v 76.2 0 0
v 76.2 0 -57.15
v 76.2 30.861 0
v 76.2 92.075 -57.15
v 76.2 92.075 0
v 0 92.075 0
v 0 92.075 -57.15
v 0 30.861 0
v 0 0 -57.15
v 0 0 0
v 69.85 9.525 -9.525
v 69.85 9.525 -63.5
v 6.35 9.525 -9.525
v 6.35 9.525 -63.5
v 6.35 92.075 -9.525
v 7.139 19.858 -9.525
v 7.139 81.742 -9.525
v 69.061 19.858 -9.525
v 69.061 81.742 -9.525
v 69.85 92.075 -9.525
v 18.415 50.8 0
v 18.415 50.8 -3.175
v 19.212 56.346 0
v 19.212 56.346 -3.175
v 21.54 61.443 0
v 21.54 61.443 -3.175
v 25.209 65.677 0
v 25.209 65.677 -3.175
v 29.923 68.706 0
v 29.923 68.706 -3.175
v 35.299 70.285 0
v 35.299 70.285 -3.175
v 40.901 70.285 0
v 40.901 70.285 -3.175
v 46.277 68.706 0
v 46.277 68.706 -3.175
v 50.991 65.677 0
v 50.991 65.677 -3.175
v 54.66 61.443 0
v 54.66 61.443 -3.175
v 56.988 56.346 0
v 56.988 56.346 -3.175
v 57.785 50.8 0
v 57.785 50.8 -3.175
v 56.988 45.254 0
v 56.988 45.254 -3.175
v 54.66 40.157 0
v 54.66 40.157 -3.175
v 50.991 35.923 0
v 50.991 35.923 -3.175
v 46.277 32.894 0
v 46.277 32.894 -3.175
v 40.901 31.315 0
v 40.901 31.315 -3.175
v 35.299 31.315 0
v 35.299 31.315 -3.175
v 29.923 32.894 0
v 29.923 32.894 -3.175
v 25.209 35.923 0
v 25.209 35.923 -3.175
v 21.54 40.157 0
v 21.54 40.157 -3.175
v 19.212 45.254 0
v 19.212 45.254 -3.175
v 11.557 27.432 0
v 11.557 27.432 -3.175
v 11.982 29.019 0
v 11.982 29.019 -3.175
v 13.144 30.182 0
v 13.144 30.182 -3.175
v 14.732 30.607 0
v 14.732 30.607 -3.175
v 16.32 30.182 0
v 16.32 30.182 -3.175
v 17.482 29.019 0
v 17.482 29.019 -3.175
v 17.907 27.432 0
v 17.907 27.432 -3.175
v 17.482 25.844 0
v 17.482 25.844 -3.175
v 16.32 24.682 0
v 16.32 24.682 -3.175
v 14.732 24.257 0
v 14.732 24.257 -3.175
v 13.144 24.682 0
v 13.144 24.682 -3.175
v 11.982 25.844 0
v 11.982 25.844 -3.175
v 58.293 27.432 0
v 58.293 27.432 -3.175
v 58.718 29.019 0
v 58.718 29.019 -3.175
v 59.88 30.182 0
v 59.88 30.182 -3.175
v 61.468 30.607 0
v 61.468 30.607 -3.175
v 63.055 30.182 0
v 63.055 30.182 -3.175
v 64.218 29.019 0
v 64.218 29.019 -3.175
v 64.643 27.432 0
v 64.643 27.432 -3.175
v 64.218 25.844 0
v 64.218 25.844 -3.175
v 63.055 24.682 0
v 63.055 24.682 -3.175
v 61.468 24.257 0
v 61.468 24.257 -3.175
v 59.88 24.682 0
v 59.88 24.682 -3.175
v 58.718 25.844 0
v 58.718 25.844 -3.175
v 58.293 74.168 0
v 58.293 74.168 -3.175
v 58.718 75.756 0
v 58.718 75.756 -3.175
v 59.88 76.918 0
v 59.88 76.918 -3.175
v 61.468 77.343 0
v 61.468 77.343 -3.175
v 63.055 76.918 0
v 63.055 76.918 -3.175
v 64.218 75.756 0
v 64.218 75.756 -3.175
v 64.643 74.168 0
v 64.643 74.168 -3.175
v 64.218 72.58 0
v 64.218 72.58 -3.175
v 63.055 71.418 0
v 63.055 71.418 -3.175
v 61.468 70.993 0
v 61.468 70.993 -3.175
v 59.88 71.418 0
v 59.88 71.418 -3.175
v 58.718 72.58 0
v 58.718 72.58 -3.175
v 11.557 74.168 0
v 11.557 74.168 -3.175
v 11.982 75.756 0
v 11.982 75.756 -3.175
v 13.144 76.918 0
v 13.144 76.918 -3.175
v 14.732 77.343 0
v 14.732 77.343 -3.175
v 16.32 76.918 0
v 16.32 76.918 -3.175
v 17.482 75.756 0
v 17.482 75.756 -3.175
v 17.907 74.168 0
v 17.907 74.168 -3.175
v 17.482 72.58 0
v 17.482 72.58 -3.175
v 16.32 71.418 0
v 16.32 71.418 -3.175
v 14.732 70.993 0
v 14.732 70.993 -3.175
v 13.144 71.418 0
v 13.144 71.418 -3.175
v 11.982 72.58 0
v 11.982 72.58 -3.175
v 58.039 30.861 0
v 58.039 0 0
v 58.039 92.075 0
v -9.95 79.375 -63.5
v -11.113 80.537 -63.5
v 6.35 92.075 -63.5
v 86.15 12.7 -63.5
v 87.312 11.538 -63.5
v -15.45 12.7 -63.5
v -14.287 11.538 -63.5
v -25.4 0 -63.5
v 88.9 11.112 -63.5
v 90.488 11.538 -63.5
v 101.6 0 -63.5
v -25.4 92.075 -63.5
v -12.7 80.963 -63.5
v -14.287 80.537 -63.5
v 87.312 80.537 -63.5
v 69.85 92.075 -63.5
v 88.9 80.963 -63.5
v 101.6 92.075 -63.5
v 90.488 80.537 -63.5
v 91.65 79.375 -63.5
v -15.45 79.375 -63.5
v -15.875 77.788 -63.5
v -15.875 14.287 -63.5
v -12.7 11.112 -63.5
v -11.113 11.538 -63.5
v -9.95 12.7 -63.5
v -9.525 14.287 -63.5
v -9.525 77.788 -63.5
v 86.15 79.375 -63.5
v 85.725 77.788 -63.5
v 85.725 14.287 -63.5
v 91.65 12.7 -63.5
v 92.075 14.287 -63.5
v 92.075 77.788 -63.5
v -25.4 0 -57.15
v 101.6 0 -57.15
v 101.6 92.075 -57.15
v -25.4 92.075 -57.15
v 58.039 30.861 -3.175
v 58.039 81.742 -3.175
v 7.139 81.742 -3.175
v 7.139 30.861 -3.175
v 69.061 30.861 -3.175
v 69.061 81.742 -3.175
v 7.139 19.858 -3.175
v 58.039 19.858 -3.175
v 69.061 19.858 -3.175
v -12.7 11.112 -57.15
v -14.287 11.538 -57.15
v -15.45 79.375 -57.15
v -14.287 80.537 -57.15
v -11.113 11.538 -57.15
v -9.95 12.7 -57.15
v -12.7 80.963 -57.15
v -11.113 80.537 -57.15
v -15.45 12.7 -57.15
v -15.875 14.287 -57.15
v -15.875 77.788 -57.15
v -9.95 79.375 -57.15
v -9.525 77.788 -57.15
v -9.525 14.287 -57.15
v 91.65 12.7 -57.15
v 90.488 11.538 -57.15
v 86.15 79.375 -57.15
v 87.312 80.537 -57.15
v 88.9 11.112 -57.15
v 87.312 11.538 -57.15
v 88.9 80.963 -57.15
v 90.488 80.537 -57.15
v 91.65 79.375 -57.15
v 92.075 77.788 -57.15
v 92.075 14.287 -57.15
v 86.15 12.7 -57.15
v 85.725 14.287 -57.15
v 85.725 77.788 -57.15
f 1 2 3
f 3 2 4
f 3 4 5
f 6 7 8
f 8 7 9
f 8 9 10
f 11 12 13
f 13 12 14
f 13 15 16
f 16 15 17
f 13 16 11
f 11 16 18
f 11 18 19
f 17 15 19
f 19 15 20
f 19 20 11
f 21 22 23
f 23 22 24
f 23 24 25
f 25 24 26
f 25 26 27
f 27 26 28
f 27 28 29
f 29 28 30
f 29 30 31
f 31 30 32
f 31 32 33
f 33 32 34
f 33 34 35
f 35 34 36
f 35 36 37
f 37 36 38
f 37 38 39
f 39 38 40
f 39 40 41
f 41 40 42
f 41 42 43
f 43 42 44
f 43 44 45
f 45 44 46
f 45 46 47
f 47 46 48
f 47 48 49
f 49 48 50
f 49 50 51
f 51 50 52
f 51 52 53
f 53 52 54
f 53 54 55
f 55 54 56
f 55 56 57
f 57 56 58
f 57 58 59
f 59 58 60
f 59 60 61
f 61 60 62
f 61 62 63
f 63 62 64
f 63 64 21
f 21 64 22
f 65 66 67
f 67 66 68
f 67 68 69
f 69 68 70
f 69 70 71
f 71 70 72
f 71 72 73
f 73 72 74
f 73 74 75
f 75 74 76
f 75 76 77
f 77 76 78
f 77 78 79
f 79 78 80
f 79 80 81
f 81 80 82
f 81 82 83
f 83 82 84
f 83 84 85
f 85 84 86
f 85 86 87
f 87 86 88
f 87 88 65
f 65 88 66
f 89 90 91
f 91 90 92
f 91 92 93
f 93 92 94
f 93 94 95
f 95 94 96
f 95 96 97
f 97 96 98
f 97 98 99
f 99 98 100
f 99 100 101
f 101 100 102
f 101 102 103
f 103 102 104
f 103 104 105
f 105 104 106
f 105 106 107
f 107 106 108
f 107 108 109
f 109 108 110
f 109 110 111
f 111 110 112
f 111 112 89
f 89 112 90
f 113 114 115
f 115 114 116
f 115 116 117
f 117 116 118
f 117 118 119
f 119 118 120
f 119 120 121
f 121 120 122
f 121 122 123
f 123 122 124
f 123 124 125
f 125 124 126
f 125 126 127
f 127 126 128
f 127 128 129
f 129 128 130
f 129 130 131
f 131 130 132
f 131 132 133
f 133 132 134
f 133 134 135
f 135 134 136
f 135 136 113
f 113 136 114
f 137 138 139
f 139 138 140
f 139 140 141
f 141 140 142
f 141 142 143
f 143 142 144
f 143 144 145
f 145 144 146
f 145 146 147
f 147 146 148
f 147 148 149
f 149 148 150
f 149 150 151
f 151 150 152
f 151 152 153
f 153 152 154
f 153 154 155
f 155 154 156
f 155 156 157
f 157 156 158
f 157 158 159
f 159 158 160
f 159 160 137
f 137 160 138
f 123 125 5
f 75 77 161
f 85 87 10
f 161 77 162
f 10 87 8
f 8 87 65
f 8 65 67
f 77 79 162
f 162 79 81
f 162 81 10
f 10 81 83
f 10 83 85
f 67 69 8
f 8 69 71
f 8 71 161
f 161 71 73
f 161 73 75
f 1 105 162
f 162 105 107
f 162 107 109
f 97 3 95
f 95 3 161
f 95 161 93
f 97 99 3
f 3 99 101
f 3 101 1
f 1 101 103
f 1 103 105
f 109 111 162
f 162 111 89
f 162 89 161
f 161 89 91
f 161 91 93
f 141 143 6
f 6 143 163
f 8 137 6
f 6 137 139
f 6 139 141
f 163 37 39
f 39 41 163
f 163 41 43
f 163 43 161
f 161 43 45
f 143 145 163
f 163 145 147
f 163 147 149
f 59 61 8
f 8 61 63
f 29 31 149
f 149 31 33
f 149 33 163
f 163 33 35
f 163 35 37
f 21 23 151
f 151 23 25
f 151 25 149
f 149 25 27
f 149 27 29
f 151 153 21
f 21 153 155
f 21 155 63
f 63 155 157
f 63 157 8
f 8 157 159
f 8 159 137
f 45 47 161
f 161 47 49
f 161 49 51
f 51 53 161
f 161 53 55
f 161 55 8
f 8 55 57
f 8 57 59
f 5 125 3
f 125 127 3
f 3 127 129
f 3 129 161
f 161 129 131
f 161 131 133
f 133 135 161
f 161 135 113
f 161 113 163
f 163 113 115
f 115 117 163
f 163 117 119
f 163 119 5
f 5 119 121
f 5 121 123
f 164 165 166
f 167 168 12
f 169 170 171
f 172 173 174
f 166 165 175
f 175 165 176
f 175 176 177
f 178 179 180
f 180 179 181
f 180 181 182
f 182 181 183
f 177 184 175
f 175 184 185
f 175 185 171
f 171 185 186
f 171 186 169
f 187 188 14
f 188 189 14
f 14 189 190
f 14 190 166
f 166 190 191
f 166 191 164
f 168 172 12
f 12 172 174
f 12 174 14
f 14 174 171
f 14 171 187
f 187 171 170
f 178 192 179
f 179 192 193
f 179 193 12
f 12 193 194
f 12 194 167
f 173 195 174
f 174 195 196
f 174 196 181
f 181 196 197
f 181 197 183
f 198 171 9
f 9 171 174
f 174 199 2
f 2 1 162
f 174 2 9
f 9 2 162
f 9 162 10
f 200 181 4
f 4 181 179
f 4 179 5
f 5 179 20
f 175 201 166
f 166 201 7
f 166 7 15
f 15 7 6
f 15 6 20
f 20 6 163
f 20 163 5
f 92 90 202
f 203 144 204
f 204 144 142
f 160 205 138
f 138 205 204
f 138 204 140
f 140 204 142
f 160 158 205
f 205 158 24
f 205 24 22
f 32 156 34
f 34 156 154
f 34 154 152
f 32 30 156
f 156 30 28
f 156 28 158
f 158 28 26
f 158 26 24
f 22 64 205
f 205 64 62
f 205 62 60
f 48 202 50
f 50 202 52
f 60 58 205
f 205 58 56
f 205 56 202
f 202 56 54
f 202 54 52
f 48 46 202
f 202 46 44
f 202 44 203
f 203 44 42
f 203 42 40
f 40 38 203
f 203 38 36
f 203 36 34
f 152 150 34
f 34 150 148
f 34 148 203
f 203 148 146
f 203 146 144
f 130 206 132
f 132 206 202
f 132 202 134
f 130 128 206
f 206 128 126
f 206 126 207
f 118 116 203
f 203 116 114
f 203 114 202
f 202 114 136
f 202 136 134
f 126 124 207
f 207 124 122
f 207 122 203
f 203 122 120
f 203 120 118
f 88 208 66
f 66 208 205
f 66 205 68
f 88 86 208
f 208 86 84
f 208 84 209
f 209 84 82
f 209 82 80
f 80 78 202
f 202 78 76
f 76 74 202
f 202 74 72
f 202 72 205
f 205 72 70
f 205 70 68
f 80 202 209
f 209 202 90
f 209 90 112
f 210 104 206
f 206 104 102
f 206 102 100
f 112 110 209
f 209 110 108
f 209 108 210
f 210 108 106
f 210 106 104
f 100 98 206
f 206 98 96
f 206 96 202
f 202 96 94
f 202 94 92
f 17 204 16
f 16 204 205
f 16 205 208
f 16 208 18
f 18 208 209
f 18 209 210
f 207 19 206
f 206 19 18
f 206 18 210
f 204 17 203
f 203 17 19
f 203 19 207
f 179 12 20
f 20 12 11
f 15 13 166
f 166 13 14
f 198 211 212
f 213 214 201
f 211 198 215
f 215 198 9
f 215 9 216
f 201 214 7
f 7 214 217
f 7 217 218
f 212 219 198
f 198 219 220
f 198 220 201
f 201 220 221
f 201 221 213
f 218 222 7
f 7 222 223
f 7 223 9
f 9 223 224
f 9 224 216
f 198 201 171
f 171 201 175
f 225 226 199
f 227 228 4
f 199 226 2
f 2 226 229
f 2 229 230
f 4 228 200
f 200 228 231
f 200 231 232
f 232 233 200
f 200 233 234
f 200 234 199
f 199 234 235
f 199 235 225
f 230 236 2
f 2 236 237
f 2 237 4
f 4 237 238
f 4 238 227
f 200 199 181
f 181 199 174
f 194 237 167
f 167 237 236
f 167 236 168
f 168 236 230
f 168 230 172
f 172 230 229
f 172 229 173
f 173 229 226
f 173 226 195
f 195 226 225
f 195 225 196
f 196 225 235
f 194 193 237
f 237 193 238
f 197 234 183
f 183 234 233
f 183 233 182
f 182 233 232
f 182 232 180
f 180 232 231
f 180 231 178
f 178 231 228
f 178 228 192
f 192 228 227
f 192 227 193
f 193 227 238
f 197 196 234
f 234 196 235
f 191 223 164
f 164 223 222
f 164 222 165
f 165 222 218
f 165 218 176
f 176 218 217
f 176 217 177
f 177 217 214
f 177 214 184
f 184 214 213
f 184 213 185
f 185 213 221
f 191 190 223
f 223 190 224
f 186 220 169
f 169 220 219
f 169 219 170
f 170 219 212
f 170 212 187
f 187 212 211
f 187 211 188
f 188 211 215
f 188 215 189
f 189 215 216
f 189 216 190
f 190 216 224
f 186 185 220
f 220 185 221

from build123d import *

# Parameters (mm, degrees)
SKETCH2_W           = 76.2
SKETCH2_H           = 63.5
BOSS_EXTRUDE1_DEPTH = 9.525
SKETCH3_W           = 76.2
SKETCH3_H           = 9.525
BOSS_EXTRUDE2_DEPTH = 82.55
SKETCH7_R           = 19.685
SKETCH7_R_2         = 3.175
CUT_EXTRUDE1_DEPTH  = 10.525
SKETCH11_W          = 61.921486798
SKETCH11_H          = 61.884587426
CUT_EXTRUDE4_DEPTH  = 6.35
SKETCH12_W          = 6.35
SKETCH12_H          = 53.975
BOSS_EXTRUDE3_DEPTH = 82.55
SKETCH14_W          = 6.35
SKETCH14_H          = 92.075
BOSS_EXTRUDE5_DEPTH = 25.4
SKETCH15_W          = 6.35
SKETCH15_H          = 92.075
BOSS_EXTRUDE6_DEPTH = 25.4
CUT_EXTRUDE5_DEPTH  = 7.35


with BuildPart() as part:
    # Sketch2 → Boss-Extrude1 (new body)
    with BuildSketch(Plane(origin=(0, 0, 0), x_dir=(1, 0, 0), z_dir=(0, 1, 0))):
        with Locations((38.1, 31.75)):
            Rectangle(SKETCH2_W, SKETCH2_H)
    extrude(amount=BOSS_EXTRUDE1_DEPTH)

    # Sketch3 → Boss-Extrude2 (add)
    with BuildSketch(Plane(origin=(0, 9.525, 0), x_dir=(1, 0, 0), z_dir=(0, 1, 0))):
        with Locations((38.1, 4.7625)):
            Rectangle(SKETCH3_W, SKETCH3_H)
    extrude(amount=BOSS_EXTRUDE2_DEPTH)

    # Sketch7 → Cut-Extrude1 (cut, through all)
    with BuildSketch(Plane(origin=(0, 0, -9.525), x_dir=(-1, 0, 0), z_dir=(0, 0, -1))):
        with Locations((-38.1, 50.8)):
            Circle(SKETCH7_R)
        with Locations((-61.468, 74.168)):
            Circle(SKETCH7_R_2)
        with Locations((-14.732, 74.168)):
            Circle(SKETCH7_R_2)
        with Locations((-14.732, 27.432)):
            Circle(SKETCH7_R_2)
        with Locations((-61.468, 27.432)):
            Circle(SKETCH7_R_2)
    extrude(amount=-CUT_EXTRUDE1_DEPTH, mode=Mode.SUBTRACT)

    # Sketch11 → Cut-Extrude4 (cut)
    with BuildSketch(Plane(origin=(0, 0, -9.525), x_dir=(-1, 0, 0), z_dir=(0, 0, -1))):
        with Locations((-38.1, 50.8)):
            Rectangle(SKETCH11_W, SKETCH11_H)
    extrude(amount=-CUT_EXTRUDE4_DEPTH, mode=Mode.SUBTRACT)

    # Sketch12 → Boss-Extrude3 (add)
    with BuildSketch(Plane(origin=(0, 9.525, 0), x_dir=(1, 0, 0), z_dir=(0, 1, 0))):
        with Locations((73.025, 36.5125)):
            Rectangle(SKETCH12_W, SKETCH12_H)
        with Locations((3.175, 36.5125)):
            Rectangle(SKETCH12_W, SKETCH12_H)
    extrude(amount=BOSS_EXTRUDE3_DEPTH)

    # Sketch14 → Boss-Extrude5 (add)
    with BuildSketch(Plane.ZY):
        with Locations((-60.325, 46.0375)):
            Rectangle(SKETCH14_W, SKETCH14_H)
    extrude(amount=BOSS_EXTRUDE5_DEPTH)

    # Sketch15 → Boss-Extrude6 (add)
    with BuildSketch(Plane(origin=(76.2, 0, 0), x_dir=(0, 0, -1), z_dir=(1, 0, 0))):
        with Locations((60.325, 46.0375)):
            Rectangle(SKETCH15_W, SKETCH15_H)
    extrude(amount=BOSS_EXTRUDE6_DEPTH)

    # Sketch16 → Cut-Extrude5 (cut, through all)
    with BuildSketch(Plane.XY.offset(-57.15)):
        with BuildLine():
            Line((-15.875, 77.7875), (-15.875, 14.2875))
            ThreePointArc((-15.875, 14.2875), (-12.7, 11.1125), (-9.525, 14.2875))
            Line((-9.525, 14.2875), (-9.525, 77.7875))
            ThreePointArc((-9.525, 77.7875), (-12.7, 80.9625), (-15.875, 77.7875))
        make_face()
        with BuildLine():
            Line((85.725, 14.2875), (85.725, 77.7875))
            ThreePointArc((85.725, 77.7875), (88.9, 80.9625), (92.075, 77.7875))
            Line((92.075, 77.7875), (92.075, 14.2875))
            ThreePointArc((92.075, 14.2875), (88.9, 11.1125), (85.725, 14.2875))
        make_face()
    extrude(amount=-CUT_EXTRUDE5_DEPTH, mode=Mode.SUBTRACT)


solid = part.part
